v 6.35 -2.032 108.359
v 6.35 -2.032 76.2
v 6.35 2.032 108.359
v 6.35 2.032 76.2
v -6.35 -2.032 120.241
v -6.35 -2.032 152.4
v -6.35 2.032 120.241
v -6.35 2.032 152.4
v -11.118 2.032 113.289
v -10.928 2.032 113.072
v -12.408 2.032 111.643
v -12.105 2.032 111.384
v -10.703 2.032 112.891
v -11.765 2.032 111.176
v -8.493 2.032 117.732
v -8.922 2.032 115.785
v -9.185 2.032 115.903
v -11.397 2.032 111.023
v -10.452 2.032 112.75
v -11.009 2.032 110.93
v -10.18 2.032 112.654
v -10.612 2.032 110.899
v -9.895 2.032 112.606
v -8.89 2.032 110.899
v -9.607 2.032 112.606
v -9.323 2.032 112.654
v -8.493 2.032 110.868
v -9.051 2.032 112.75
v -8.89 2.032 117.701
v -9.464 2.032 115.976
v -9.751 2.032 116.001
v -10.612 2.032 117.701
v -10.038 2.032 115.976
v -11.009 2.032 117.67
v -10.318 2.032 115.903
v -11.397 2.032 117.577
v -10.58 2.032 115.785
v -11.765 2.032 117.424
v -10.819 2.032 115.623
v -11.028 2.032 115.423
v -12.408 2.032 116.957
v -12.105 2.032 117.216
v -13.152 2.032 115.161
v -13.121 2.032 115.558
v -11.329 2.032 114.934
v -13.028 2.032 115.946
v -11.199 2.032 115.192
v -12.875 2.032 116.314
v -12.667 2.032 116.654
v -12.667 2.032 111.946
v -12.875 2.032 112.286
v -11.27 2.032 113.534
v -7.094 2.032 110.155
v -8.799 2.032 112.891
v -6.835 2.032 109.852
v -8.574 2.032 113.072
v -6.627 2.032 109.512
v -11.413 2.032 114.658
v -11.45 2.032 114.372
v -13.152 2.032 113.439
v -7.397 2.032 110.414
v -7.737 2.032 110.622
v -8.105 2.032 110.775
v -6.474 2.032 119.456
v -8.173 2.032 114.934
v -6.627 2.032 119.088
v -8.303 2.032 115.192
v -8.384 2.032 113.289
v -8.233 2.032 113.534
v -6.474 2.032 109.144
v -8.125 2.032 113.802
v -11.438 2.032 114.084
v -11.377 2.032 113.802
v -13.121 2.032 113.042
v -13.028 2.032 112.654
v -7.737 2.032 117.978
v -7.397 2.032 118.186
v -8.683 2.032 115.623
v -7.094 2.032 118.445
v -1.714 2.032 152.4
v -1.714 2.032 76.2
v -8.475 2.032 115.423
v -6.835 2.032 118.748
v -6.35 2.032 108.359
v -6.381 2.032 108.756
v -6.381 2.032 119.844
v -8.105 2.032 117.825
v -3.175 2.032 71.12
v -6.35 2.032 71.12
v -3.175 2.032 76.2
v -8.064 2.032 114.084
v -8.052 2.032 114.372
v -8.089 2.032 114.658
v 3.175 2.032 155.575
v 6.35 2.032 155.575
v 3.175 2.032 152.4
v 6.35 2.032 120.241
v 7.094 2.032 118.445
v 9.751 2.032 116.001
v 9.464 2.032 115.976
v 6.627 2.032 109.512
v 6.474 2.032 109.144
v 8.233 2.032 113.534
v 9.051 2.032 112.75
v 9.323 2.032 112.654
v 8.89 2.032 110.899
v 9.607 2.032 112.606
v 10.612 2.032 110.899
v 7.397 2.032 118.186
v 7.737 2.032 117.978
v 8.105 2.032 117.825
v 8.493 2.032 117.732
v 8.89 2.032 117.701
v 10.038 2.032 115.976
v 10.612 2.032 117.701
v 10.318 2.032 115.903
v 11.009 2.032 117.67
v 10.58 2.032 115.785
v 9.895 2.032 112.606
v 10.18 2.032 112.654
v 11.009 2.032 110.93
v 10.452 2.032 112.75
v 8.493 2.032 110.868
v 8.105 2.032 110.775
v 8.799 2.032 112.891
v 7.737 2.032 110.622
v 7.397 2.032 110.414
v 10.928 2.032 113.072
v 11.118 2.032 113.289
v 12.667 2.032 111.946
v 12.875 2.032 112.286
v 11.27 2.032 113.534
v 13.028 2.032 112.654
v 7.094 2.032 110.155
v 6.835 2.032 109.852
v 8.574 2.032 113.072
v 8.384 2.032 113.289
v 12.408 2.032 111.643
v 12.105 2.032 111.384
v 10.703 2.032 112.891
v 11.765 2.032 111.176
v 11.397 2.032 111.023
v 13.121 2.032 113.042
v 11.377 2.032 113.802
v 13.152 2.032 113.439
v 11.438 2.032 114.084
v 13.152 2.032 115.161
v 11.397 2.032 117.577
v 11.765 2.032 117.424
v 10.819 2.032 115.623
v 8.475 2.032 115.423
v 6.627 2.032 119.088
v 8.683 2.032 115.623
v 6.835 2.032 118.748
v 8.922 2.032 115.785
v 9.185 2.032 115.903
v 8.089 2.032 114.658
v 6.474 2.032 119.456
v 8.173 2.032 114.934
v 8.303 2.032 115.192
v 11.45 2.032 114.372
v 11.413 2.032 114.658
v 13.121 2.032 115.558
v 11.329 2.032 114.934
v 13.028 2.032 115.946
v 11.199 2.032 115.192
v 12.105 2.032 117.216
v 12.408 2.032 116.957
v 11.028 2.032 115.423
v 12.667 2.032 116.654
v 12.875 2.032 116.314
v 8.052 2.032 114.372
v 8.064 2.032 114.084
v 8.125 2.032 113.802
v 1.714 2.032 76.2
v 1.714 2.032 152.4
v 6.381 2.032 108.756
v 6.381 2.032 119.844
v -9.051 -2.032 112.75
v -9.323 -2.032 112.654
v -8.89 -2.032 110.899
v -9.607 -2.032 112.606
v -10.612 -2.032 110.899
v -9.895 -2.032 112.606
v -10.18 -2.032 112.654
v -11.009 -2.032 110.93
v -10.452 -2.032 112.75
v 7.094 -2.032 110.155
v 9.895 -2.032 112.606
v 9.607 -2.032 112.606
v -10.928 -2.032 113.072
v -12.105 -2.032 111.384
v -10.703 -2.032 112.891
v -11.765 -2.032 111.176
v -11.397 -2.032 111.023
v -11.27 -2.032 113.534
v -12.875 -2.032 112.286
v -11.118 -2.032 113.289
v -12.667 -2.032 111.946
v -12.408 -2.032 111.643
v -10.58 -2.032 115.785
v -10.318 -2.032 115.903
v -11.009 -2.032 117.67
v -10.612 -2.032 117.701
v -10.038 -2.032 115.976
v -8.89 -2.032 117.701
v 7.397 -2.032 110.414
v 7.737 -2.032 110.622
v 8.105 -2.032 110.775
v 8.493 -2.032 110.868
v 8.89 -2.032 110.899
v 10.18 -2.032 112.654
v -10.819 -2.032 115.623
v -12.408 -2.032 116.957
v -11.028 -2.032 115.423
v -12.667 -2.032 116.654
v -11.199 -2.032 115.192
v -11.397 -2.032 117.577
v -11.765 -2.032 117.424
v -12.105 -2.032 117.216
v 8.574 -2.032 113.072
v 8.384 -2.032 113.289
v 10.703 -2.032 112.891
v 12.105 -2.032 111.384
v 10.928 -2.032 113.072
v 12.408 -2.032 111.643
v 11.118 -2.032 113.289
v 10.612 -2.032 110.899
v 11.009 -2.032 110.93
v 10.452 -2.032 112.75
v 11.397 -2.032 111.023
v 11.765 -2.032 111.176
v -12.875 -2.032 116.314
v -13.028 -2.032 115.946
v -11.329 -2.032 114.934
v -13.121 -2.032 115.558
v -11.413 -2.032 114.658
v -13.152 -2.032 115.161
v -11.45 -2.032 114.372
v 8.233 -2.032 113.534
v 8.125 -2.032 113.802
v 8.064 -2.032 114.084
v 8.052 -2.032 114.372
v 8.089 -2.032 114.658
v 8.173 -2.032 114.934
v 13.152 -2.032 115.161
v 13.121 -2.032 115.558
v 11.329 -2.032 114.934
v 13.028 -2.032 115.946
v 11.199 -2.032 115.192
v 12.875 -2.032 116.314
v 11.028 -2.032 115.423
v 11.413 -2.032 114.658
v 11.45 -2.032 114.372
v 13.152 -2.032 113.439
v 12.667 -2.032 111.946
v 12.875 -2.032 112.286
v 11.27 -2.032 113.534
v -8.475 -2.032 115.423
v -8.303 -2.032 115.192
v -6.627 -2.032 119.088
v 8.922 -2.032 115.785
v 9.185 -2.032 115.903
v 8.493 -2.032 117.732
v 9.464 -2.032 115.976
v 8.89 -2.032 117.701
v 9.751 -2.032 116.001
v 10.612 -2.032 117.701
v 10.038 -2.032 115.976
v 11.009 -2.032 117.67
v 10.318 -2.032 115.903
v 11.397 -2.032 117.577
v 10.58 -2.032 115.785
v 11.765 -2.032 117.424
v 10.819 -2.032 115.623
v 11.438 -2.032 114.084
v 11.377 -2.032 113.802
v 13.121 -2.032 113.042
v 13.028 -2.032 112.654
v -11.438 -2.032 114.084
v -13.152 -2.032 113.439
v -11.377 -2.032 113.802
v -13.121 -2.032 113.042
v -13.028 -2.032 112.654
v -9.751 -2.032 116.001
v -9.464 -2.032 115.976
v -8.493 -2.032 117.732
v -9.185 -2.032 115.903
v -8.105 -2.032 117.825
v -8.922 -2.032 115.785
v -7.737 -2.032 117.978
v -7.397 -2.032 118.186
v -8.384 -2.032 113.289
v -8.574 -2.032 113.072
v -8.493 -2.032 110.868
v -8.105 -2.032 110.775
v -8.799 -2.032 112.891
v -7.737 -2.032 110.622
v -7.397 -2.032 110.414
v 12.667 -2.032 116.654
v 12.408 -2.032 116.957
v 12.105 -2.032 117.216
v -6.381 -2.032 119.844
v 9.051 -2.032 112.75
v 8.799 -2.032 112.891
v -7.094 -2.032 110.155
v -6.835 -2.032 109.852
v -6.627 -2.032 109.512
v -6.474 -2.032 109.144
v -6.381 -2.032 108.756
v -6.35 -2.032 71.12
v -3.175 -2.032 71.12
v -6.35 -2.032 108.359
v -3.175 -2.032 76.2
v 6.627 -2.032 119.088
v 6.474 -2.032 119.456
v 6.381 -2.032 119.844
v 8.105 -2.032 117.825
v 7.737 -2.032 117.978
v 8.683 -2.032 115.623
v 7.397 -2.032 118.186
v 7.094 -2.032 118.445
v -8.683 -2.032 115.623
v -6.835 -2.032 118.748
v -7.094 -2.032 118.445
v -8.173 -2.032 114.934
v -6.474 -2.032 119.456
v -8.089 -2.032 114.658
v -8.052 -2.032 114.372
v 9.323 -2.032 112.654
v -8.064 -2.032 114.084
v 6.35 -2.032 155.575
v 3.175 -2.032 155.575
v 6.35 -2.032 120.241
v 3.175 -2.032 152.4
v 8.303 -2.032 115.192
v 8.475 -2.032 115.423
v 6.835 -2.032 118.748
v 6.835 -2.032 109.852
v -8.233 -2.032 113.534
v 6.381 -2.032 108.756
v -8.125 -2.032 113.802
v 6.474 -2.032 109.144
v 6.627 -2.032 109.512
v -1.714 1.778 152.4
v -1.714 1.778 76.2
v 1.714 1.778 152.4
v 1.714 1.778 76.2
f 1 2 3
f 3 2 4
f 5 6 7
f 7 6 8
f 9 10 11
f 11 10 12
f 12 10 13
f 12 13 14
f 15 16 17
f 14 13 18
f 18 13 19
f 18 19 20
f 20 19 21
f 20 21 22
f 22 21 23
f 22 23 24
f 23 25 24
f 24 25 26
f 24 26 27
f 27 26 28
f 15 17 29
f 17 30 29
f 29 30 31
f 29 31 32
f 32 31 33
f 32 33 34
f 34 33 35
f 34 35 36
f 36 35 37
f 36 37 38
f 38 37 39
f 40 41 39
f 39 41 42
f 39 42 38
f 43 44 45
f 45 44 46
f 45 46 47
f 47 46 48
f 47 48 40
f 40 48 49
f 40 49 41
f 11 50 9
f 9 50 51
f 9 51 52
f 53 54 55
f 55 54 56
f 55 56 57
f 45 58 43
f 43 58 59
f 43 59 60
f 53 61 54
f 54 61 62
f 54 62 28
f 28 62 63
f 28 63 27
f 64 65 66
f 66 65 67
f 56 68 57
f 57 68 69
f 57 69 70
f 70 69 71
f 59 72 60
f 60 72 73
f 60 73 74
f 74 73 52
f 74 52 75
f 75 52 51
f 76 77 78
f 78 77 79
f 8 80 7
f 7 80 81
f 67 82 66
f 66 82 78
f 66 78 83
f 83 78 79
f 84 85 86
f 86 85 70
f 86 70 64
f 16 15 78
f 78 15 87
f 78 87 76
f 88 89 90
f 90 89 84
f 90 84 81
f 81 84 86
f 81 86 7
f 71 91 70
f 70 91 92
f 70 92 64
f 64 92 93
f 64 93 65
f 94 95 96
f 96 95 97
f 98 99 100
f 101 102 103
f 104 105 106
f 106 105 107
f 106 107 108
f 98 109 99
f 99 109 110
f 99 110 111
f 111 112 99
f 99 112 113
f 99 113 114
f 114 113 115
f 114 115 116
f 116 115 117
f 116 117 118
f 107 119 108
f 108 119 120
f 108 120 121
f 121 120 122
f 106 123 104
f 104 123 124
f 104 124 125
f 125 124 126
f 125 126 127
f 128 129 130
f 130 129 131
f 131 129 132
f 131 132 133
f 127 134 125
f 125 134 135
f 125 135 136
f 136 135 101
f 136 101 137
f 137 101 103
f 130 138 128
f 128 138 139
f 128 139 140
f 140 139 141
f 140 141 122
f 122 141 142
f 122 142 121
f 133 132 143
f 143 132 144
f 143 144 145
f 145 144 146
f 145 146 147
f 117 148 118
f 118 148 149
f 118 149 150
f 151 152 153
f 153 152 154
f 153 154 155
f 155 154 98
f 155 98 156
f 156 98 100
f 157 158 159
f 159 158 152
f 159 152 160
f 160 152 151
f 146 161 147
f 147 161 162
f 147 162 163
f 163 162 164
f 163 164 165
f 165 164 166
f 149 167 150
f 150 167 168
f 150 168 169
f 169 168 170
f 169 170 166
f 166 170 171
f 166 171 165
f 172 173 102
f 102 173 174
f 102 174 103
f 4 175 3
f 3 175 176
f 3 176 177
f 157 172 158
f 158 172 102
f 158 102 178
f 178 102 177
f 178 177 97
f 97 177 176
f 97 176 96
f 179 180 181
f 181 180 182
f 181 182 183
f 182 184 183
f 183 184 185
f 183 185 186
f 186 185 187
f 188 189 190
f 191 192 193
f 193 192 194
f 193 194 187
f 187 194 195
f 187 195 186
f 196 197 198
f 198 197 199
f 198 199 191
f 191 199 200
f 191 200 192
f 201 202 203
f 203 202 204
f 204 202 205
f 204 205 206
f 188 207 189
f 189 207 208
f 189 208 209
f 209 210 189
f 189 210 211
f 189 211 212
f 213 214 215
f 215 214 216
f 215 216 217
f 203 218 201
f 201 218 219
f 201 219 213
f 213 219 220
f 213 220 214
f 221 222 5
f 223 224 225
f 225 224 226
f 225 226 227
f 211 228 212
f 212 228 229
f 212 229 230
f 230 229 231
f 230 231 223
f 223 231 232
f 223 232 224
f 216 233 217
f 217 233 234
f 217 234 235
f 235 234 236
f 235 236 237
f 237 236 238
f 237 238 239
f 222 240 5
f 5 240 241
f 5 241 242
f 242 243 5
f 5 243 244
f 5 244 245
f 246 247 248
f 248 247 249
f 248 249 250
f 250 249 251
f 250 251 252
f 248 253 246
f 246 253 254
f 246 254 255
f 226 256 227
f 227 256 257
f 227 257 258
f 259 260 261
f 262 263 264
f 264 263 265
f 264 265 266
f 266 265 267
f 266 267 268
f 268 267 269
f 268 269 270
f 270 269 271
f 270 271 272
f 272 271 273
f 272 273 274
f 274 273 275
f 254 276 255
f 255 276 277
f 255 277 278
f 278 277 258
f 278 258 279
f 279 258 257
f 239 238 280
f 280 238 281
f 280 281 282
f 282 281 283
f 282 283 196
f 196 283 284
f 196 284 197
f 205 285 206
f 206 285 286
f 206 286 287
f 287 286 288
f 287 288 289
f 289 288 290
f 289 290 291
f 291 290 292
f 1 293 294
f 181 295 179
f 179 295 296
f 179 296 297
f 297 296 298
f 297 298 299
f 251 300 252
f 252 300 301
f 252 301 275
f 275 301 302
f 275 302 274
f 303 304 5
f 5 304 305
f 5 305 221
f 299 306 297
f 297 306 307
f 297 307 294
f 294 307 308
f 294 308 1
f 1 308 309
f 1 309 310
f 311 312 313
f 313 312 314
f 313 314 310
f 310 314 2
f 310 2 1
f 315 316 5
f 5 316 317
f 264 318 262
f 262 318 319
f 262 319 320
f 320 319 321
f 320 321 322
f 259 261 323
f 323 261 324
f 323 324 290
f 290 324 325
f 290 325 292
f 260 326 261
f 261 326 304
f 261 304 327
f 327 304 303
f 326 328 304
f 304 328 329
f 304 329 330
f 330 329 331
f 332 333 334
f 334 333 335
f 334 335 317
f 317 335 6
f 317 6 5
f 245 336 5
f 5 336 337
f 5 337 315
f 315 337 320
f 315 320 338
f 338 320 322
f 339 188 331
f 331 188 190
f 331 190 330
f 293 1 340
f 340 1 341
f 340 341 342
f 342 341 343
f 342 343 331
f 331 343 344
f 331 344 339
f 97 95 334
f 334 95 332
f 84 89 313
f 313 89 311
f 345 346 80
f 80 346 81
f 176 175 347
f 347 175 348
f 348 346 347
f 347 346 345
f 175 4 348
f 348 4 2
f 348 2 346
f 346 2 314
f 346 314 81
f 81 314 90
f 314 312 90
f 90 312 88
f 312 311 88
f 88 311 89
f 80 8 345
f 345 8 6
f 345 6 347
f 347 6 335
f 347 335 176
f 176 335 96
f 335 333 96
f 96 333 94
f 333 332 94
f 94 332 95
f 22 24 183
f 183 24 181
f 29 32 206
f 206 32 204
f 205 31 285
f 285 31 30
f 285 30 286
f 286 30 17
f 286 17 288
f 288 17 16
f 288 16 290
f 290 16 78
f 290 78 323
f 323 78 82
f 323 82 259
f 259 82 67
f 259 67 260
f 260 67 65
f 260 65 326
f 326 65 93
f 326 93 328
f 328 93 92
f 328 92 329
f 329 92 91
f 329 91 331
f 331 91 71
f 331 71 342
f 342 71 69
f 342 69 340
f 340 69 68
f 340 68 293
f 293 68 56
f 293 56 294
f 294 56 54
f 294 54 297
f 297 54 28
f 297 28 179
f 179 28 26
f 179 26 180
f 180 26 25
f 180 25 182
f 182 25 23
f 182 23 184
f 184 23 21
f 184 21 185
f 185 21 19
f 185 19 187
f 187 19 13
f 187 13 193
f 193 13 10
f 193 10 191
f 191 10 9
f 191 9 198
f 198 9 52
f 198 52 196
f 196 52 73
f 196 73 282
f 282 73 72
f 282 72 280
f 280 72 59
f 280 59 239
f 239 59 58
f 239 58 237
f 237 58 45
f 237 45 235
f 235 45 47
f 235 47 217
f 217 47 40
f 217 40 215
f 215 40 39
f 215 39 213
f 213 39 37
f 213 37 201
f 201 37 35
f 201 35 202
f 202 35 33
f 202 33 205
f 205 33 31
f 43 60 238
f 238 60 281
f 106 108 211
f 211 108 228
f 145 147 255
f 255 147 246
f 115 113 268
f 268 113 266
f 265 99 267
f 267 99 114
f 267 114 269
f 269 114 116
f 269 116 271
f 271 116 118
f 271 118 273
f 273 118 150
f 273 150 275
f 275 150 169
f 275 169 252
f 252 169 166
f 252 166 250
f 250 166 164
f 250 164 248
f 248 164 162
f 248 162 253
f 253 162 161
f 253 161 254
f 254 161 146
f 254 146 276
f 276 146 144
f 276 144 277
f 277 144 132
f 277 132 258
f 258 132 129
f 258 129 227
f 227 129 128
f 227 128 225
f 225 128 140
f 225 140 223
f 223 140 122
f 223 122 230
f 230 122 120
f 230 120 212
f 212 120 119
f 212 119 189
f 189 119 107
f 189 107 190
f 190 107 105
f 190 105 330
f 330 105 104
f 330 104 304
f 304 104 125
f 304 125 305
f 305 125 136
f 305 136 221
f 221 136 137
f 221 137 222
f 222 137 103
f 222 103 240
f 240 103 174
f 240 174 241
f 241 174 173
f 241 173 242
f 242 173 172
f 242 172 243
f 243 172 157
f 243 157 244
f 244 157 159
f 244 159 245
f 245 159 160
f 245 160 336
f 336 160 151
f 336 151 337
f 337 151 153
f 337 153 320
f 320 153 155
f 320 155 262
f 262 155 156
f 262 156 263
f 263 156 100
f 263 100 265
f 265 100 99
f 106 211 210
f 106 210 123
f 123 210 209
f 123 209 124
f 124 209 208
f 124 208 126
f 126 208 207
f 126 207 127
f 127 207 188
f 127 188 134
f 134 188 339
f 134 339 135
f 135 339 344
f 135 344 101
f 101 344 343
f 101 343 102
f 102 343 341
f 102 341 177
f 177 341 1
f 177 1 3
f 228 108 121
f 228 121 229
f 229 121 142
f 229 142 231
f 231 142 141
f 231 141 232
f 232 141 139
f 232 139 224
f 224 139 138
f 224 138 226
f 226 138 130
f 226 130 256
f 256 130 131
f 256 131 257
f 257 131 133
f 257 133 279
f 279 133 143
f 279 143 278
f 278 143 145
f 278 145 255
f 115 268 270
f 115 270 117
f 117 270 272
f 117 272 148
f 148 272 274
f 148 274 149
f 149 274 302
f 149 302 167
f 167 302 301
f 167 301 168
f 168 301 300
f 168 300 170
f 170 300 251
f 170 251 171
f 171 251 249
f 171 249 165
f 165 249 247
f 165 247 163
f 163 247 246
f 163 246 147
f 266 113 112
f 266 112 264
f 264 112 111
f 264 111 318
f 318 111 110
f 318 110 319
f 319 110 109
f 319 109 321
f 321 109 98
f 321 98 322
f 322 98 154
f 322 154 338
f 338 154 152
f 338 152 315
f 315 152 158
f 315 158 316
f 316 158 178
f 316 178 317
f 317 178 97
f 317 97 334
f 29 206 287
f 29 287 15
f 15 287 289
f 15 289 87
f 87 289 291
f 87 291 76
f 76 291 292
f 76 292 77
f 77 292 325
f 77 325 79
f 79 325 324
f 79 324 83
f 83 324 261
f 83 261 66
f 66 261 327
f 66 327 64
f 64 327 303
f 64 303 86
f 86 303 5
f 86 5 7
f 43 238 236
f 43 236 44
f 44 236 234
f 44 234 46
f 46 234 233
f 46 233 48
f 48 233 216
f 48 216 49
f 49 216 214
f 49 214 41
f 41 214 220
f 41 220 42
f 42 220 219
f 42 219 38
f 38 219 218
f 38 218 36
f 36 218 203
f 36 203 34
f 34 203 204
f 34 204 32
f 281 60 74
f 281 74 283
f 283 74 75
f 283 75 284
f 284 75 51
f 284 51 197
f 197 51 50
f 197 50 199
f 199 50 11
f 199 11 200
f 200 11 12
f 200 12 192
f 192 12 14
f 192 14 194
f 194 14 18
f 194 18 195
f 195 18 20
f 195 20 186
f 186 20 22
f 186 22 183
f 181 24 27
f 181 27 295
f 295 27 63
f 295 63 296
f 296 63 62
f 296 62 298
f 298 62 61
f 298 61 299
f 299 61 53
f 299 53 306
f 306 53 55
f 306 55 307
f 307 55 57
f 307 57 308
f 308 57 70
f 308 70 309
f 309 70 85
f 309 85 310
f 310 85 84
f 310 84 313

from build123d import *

# Parameters (mm, degrees)
SKETCH1_W               = 12.7
SKETCH1_H               = 4.064
BOSS_EXTRUDE1_DEPTH     = 228.6
SKETCH2_W               = 3.429
SKETCH2_H               = 217.3732
CUT_EXTRUDE1_DEPTH      = 0.254
SKETCH3_W               = 0.508
SKETCH3_H               = 5.08
CUT_EXTRUDE2_DEPTH      = 229.724285103
MIRROR2_COPY_1_SKETCH_W = 0.508
MIRROR2_COPY_1_SKETCH_H = 5.08
MIRROR2_COPY_1_DEPTH    = 229.724285103
SKETCH4_W               = 3.175
SKETCH4_H               = 3.175
CUT_EXTRUDE3_DEPTH      = 229.724285103
CUT_EXTRUDE5_DEPTH      = 229.724285103
SKETCH6_W               = 6.80212
SKETCH6_H               = 6.80212
SKETCH6_R               = 1.70053
BOSS_EXTRUDE2_DEPTH     = 4.064
FILLET1_R               = 2.54


with BuildPart() as part:
    # Sketch1 → Boss-Extrude1 (new body)
    with BuildSketch(Plane.XY):
        Rectangle(SKETCH1_W, SKETCH1_H)
    extrude(amount=BOSS_EXTRUDE1_DEPTH)

    # Sketch2 → Cut-Extrude1 (cut)
    with BuildSketch(Plane(origin=(0, 2.032, 0), x_dir=(1, 0, 0), z_dir=(0, 1, 0))):
        with Locations((0, -114.3)):
            Rectangle(SKETCH2_W, SKETCH2_H)
    extrude(amount=-CUT_EXTRUDE1_DEPTH, mode=Mode.SUBTRACT)

    # Sketch3 → Cut-Extrude2 (cut, through all)
    with BuildSketch(Plane(origin=(0, 2.032, 0), x_dir=(1, 0, 0), z_dir=(0, 1, 0))):
        with Locations((-6.096, -226.06)):
            Rectangle(SKETCH3_W, SKETCH3_H)
    cut_extrude2 = extrude(amount=-CUT_EXTRUDE2_DEPTH, mode=Mode.SUBTRACT)

    # Mirror1: Cut-Extrude2 across plane
    add(cut_extrude2.mirror(Plane(origin=(0, 0, 114.3), x_dir=(1, 0, 0), z_dir=(0, 0, -1))), mode=Mode.SUBTRACT)

    # Mirror2: Cut-Extrude2 across plane
    add(cut_extrude2.mirror(Plane(origin=(0, 0, 0), x_dir=(0, 0, 1), z_dir=(1, 0, 0))), mode=Mode.SUBTRACT)

    # Mirror2 copy 1 sketch → Mirror2 copy 1 (cut, through all)
    with BuildSketch(Plane(origin=(0, 2.032, 228.6), x_dir=(-1, 0, 0), z_dir=(0, 1, 0))):
        with Locations((-6.096, -226.06)):
            Rectangle(MIRROR2_COPY_1_SKETCH_W, MIRROR2_COPY_1_SKETCH_H)
    extrude(amount=-MIRROR2_COPY_1_DEPTH, mode=Mode.SUBTRACT)

    # Sketch4 → Cut-Extrude3 (cut, through all)
    with BuildSketch(Plane(origin=(0, 2.032, 0), x_dir=(1, 0, 0), z_dir=(0, 1, 0))):
        with Locations((-4.2545, -227.0125)):
            Rectangle(SKETCH4_W, SKETCH4_H)
    extrude(amount=-CUT_EXTRUDE3_DEPTH, mode=Mode.SUBTRACT)

    # Sketch5 → Cut-Extrude5 (cut, through all)
    with BuildSketch(Plane(origin=(0, 2.032, 0), x_dir=(1, 0, 0), z_dir=(0, 1, 0))):
        Polygon((-6.35, 0), (6.35, 0), (6.35, -76.2), (-3.175, -76.2), (-3.175, -71.12), (-6.35, -71.12), align=None)
        Polygon((-6.35, -152.4), (3.175, -152.4), (3.175, -155.575), (6.35, -155.575), (6.35, -228.6), (-6.35, -228.6), align=None)
    extrude(amount=-CUT_EXTRUDE5_DEPTH, mode=Mode.SUBTRACT)

    # Sketch6 → Boss-Extrude2 (add, through all)
    # profile 1 of 2: a face of its own
    with BuildSketch(Plane(origin=(0, 2.032, 0), x_dir=(1, 0, 0), z_dir=(0, 1, 0))):
        with Locations((-9.75106, -114.3)):
            Rectangle(SKETCH6_W, SKETCH6_H)
        with Locations(Location((-9.75106, -114.3, 0), (0, 0, 270))):
            Circle(SKETCH6_R, mode=Mode.SUBTRACT)
    # profile 2 of 2: a face of its own
    with BuildSketch(Plane(origin=(0, 2.032, 0), x_dir=(1, 0, 0), z_dir=(0, 1, 0))):
        with Locations((9.75106, -114.3)):
            Rectangle(SKETCH6_W, SKETCH6_H)
        with Locations(Location((9.75106, -114.3, 0), (0, 0, 270))):
            Circle(SKETCH6_R, mode=Mode.SUBTRACT)
    extrude(amount=-BOSS_EXTRUDE2_DEPTH)

    # Fillet1
    fillet1_edges = [part.edges().sort_by_distance(p)[0] for p in [
        (6.35, 0, 110.89894),
        (13.15212, 0, 110.89894),
        (13.15212, 0, 117.70106),
        (6.35, 0, 117.70106),
        (-6.35, 0, 117.70106),
        (-13.15212, 0, 117.70106),
        (-13.15212, 0, 110.89894),
        (-6.35, 0, 110.89894),
    ]]
    fillet(fillet1_edges, radius=FILLET1_R)


solid = part.part
